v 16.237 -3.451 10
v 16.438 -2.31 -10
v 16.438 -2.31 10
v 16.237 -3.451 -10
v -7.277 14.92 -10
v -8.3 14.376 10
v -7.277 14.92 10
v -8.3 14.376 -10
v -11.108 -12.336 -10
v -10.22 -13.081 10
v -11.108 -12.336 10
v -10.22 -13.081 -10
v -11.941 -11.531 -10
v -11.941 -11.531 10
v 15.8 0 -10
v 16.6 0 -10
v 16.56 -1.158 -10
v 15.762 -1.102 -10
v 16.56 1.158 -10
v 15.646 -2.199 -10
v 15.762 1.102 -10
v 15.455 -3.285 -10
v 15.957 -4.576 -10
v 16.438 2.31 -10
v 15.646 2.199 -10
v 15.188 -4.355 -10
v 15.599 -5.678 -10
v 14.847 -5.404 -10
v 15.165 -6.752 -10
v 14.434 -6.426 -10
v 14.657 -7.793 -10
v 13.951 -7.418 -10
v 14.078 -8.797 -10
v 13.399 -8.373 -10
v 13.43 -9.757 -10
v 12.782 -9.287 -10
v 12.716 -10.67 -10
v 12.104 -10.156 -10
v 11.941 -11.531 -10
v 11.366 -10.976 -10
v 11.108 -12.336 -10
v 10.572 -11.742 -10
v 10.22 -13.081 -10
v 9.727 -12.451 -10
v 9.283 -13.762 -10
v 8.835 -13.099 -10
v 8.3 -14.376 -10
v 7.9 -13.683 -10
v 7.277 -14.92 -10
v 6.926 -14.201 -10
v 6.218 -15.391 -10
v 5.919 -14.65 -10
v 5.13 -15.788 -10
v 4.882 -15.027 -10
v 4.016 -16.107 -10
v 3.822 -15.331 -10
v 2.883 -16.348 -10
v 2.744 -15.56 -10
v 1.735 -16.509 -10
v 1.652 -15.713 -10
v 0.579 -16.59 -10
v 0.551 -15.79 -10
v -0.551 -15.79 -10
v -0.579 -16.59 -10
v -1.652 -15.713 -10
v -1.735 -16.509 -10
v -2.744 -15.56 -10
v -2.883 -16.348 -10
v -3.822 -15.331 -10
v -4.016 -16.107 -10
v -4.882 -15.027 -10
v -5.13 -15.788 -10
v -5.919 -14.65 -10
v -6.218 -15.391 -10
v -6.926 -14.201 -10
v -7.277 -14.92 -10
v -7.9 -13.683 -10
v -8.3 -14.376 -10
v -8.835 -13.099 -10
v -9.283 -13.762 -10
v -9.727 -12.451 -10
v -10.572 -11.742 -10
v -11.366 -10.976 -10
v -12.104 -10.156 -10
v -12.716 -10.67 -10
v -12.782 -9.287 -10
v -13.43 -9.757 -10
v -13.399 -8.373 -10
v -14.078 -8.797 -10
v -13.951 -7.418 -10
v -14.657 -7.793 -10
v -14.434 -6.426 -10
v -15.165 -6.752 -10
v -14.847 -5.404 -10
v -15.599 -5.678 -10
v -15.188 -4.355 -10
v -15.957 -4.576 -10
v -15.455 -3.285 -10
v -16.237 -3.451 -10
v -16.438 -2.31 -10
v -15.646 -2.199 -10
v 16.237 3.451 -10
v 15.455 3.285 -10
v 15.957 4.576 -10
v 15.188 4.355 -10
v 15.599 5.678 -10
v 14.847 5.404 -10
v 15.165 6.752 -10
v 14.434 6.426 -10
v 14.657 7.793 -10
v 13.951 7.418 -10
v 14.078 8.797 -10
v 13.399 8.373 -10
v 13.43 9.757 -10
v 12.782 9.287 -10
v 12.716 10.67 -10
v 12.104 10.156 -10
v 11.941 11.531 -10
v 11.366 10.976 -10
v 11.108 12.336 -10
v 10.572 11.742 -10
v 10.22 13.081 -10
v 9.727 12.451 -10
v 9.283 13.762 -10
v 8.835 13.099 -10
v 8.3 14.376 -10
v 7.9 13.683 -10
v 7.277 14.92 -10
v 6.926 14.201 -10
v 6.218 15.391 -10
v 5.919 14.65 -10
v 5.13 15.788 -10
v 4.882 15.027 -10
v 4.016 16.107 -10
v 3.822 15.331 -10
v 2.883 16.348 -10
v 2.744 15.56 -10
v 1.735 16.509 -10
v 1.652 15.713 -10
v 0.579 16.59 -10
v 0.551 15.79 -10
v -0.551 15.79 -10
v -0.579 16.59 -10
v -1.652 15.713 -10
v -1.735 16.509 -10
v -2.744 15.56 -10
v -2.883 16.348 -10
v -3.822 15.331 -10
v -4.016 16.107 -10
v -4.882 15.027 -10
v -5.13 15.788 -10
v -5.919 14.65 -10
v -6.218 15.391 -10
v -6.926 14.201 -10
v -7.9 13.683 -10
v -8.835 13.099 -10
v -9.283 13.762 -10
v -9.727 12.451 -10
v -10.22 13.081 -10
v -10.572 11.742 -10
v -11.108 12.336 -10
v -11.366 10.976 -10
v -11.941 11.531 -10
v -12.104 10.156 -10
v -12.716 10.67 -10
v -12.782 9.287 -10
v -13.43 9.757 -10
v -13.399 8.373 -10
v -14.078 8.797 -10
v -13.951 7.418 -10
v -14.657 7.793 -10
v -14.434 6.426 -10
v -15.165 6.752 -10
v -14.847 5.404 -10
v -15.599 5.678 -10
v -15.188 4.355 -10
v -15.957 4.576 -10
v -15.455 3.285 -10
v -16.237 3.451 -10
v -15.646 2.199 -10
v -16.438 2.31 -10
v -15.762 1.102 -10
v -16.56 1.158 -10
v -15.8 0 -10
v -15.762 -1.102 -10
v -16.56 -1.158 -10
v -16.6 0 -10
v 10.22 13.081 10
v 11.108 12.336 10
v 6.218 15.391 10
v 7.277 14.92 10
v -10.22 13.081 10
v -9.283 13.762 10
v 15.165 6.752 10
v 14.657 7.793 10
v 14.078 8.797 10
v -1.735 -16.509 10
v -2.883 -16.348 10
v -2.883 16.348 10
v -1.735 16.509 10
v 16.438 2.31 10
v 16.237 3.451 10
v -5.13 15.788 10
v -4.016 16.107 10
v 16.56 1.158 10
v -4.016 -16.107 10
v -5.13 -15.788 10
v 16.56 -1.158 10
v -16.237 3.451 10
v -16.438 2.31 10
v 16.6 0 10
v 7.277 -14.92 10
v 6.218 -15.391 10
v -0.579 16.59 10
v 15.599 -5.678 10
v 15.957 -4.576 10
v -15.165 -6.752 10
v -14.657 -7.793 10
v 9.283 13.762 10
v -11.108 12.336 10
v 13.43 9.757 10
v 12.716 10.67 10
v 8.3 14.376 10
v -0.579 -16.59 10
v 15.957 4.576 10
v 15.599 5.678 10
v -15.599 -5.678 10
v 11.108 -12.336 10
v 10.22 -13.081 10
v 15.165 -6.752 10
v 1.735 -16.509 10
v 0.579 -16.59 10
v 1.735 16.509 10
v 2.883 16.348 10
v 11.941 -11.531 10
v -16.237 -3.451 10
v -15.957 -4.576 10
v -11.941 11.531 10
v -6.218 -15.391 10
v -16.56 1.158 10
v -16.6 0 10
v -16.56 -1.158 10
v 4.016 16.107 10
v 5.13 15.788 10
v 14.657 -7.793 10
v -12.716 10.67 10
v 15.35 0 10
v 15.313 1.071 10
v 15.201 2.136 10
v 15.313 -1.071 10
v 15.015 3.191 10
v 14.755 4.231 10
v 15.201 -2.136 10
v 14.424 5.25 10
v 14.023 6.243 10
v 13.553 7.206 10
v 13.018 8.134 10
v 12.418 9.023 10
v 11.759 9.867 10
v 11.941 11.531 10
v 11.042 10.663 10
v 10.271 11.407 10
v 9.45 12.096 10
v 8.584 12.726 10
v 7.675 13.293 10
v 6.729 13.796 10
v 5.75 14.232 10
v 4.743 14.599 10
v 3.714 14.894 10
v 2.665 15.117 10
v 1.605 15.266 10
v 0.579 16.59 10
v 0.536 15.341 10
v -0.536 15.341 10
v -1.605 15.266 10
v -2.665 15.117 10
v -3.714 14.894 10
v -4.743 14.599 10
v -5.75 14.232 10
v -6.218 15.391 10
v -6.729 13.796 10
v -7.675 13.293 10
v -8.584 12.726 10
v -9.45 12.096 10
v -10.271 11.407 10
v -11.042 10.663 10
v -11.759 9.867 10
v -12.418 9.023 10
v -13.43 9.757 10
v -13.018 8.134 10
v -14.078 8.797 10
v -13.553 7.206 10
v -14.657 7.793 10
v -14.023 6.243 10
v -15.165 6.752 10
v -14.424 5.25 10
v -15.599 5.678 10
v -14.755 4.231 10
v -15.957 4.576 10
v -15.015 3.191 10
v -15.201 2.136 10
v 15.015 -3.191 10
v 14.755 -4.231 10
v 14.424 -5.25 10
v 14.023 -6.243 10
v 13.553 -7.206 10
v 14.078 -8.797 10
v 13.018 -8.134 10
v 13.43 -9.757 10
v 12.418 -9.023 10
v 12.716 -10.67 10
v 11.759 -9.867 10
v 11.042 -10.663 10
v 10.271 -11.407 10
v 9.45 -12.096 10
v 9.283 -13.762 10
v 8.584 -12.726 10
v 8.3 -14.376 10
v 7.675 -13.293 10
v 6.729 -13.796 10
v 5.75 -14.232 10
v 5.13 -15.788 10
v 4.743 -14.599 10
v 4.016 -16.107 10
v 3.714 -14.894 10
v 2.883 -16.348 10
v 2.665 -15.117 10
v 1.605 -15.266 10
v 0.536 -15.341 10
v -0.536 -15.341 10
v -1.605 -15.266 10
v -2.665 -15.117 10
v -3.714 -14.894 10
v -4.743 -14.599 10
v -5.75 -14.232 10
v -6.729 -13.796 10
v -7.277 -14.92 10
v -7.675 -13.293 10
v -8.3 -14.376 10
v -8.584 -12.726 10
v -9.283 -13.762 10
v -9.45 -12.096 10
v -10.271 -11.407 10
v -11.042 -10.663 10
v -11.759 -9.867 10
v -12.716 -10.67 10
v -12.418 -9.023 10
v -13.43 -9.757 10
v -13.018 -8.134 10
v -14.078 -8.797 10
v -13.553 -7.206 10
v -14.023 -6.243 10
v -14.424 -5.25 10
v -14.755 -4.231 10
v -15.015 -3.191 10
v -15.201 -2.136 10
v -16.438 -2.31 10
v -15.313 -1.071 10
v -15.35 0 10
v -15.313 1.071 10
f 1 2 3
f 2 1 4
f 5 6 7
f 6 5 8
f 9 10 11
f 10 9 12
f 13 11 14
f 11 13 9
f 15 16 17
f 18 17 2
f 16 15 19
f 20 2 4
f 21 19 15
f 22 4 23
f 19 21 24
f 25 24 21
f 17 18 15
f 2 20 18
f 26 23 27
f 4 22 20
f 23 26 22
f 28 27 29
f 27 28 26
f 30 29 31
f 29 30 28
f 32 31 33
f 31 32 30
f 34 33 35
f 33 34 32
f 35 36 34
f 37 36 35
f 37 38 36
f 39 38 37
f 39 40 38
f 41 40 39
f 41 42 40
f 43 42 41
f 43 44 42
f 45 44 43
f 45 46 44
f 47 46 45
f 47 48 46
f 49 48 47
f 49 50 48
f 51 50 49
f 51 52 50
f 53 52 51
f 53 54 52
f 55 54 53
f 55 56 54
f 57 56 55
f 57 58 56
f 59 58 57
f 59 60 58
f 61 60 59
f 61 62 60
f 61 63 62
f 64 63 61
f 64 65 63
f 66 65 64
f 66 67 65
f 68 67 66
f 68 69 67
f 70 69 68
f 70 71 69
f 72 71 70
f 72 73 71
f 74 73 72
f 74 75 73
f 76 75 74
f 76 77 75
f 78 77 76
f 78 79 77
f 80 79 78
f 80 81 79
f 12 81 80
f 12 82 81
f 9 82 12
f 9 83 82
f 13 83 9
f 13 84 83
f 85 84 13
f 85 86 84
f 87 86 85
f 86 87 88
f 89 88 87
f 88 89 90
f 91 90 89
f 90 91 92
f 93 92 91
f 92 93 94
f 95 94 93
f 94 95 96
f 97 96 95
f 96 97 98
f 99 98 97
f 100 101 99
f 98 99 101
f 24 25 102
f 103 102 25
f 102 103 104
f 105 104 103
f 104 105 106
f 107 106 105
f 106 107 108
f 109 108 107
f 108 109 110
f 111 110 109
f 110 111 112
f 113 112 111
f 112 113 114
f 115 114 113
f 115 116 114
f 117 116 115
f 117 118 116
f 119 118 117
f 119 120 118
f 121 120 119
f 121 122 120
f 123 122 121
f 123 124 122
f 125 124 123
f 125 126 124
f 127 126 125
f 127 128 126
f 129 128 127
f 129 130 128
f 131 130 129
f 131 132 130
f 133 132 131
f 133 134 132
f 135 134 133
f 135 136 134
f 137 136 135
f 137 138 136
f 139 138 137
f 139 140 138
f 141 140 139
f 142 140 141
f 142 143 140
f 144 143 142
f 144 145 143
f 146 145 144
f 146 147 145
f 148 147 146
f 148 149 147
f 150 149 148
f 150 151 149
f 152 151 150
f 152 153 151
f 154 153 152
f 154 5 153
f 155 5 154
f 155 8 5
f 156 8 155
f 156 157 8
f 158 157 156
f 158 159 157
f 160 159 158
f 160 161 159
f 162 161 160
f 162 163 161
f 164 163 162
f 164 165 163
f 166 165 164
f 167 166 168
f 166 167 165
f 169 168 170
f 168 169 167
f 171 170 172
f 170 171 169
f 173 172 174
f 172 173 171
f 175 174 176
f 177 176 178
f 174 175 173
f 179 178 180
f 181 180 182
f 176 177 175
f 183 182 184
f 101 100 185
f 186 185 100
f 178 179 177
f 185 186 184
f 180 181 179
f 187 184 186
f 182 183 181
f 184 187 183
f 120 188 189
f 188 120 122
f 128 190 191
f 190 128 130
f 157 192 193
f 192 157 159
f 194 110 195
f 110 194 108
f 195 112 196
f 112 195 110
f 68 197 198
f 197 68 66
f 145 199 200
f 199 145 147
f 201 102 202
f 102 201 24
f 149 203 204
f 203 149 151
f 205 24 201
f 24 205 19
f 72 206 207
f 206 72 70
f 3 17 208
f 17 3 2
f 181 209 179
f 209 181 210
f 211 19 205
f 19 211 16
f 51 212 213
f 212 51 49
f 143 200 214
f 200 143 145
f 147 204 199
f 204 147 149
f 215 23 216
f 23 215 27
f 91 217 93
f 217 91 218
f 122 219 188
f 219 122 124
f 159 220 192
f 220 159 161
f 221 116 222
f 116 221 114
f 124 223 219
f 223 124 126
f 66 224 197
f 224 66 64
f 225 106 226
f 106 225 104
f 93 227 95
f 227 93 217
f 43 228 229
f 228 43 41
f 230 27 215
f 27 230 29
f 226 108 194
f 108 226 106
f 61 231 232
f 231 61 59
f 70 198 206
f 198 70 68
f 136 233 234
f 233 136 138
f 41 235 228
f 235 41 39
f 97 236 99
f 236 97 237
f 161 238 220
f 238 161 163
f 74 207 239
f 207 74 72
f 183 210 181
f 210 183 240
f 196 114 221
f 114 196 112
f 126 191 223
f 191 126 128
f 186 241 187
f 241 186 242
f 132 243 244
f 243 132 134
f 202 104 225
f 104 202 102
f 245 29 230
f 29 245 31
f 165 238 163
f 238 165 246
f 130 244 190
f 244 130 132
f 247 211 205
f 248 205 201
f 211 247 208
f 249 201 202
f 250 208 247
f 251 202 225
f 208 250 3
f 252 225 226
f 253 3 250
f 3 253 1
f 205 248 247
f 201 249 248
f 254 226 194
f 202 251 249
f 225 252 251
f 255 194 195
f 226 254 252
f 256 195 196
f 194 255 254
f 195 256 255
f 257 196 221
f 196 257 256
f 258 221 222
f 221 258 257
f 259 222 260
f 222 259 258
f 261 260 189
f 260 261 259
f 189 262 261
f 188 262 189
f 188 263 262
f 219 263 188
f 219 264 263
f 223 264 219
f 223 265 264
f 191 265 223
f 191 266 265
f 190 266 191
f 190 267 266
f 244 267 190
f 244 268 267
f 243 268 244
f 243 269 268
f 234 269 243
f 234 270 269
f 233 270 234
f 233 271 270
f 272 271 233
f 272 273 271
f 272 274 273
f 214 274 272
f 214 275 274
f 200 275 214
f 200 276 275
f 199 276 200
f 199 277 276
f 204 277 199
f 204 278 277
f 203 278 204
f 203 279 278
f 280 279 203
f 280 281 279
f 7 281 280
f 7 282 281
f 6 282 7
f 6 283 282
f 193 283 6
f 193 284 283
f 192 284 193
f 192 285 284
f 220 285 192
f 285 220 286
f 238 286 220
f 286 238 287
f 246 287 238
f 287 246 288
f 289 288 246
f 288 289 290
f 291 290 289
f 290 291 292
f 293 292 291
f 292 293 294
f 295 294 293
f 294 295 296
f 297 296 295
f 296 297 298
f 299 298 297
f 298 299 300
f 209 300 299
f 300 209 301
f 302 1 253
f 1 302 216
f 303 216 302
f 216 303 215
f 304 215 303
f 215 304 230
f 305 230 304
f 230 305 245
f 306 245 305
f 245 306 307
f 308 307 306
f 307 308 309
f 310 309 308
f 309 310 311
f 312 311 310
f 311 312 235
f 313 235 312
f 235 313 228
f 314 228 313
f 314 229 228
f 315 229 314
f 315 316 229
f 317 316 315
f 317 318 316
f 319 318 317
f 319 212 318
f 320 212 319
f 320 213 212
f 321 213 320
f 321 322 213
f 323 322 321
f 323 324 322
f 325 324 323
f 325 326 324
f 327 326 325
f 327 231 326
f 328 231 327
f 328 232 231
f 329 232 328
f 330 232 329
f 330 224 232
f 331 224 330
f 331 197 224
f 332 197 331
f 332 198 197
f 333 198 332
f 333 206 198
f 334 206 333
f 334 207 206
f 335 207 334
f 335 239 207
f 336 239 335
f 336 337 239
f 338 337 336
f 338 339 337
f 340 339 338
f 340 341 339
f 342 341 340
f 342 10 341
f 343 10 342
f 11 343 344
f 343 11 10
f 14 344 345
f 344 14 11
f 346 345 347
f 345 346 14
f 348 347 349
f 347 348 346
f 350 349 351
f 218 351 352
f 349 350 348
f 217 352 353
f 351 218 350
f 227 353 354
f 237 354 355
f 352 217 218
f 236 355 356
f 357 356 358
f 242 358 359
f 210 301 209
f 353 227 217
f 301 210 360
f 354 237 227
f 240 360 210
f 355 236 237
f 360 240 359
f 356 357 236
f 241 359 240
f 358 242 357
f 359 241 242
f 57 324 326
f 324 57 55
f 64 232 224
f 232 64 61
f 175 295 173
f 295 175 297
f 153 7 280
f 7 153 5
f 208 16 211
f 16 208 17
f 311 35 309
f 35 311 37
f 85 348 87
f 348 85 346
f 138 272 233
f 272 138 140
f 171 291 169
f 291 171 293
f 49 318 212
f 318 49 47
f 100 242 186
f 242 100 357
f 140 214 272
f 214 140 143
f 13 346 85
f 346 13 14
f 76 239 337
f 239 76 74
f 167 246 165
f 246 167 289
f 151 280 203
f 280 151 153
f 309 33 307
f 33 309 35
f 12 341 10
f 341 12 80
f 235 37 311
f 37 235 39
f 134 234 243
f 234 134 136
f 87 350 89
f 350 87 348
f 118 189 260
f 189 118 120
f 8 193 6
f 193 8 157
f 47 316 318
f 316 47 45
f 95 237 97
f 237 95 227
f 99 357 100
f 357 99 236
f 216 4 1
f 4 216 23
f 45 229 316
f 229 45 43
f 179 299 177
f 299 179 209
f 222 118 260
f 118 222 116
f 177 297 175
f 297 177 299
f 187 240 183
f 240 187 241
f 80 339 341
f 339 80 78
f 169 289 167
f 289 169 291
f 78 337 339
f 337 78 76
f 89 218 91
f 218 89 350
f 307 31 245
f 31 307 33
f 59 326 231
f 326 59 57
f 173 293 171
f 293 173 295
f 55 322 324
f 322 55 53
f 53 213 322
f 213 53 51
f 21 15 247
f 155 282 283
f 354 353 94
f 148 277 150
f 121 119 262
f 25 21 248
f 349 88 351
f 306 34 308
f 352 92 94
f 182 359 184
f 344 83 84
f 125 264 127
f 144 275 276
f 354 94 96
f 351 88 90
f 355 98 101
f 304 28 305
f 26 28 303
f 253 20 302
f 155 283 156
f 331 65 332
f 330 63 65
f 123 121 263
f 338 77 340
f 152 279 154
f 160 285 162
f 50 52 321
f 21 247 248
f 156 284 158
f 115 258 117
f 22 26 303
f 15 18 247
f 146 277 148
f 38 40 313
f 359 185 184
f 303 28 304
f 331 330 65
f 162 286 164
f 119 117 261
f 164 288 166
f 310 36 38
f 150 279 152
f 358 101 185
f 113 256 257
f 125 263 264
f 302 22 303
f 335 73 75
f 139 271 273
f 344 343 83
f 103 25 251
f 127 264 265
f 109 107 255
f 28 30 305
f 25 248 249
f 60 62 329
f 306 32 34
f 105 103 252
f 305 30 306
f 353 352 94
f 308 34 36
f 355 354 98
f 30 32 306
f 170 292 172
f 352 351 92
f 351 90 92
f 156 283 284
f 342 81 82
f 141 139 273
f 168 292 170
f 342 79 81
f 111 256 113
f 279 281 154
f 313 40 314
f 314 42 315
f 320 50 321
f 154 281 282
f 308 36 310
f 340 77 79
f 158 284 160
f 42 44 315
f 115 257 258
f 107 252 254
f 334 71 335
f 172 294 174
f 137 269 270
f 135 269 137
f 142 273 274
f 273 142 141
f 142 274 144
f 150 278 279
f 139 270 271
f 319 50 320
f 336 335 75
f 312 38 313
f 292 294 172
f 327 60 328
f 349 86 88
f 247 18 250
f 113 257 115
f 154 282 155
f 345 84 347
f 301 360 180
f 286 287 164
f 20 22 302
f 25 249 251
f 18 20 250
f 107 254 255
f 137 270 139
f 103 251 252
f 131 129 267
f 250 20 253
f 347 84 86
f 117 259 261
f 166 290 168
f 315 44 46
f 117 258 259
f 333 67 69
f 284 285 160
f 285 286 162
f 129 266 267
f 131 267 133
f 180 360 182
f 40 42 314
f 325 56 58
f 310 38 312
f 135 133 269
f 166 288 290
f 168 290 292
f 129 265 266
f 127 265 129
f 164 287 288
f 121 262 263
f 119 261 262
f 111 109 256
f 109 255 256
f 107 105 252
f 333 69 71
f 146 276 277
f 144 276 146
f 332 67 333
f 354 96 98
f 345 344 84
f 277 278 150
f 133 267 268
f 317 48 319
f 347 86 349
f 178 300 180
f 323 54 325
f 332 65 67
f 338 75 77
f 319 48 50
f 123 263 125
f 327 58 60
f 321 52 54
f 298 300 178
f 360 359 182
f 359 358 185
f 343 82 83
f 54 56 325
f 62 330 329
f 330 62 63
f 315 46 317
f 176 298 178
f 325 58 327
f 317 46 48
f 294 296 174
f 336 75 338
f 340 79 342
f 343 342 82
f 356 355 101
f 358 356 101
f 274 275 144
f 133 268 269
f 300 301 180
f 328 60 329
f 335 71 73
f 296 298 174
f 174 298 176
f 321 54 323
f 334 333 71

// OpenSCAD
$fn = 90;
length = 20;
difference(){
	cylinder(d=33.2, h=length, center = true);
	#cylinder(d1=31.6, d2=30.7, h=length, center = true);
}
